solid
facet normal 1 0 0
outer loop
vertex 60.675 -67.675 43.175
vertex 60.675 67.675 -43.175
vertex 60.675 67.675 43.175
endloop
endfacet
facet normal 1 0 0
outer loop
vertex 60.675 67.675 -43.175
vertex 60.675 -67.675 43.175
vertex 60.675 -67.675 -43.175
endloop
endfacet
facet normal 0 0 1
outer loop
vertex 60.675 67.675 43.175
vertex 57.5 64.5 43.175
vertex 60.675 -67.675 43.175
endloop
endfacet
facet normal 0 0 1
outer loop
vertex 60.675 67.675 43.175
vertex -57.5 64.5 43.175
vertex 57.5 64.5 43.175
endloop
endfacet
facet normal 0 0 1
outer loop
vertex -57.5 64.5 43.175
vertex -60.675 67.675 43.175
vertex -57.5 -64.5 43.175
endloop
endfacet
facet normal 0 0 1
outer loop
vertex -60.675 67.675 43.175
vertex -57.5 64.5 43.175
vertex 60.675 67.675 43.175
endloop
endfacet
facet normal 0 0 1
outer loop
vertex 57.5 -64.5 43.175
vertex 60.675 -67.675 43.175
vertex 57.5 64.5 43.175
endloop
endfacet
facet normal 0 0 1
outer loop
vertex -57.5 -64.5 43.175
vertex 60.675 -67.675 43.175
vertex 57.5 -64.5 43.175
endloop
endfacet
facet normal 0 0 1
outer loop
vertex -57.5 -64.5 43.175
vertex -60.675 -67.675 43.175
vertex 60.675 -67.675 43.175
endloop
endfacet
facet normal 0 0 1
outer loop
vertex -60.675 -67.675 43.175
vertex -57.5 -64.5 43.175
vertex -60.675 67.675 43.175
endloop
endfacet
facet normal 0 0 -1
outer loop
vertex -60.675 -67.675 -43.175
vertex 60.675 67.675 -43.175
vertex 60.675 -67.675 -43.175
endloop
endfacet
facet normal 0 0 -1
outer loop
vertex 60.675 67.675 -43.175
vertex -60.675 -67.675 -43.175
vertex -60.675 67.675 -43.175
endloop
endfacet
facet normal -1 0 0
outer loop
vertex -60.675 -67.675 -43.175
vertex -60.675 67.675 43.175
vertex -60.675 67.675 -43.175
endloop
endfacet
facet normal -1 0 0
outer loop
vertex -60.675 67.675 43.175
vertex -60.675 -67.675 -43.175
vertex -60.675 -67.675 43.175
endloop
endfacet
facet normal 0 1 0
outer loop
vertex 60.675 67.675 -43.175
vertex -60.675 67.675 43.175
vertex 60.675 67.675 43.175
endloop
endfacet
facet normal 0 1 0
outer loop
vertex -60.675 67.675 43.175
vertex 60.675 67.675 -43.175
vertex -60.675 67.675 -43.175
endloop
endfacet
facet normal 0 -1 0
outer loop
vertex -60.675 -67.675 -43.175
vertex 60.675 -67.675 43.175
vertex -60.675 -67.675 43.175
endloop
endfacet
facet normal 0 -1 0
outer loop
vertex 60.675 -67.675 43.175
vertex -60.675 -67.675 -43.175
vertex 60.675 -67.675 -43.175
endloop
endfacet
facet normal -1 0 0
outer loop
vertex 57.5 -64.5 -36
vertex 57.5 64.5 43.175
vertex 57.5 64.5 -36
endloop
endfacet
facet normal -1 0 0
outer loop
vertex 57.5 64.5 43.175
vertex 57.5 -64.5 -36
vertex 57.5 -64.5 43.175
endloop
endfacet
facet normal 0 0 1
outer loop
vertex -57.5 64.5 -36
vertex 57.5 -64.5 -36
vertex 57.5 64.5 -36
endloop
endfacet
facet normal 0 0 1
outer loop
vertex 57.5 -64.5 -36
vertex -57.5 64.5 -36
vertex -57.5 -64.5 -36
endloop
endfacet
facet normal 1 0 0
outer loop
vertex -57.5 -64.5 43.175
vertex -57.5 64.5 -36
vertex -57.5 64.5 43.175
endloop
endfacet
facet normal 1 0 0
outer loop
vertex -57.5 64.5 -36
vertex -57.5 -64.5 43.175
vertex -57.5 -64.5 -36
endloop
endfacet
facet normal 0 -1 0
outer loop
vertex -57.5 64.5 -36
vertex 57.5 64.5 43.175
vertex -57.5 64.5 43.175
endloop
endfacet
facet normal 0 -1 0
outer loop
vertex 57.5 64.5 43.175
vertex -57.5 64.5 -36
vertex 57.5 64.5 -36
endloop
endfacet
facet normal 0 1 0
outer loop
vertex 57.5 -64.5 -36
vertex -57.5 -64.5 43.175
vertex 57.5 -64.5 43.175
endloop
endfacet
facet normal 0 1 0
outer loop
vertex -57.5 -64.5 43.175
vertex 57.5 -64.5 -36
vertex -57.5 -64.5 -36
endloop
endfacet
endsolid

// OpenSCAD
// chopped_blocks.stl is derived from Basics/LetterBlock.scad
// The exported STL was converted to binary using MeshLab


//should be in MM
// total length = 565, so we can divide into five boxes of 115 (approx)
// width = 386 so 3 boxes of 129~
module boxForCredenza(length=115, width=129,height=80,wall_thickness=6.35, floor_thickness=4) {

    difference() {
        cube([length+wall_thickness, width+wall_thickness, height+wall_thickness ], center = true);
        translate([ 0, 0, floor_thickness ]) 
        cube([ length, width, height ], center = true);
        }
        }




boxForCredenza();
echo(version=version());
